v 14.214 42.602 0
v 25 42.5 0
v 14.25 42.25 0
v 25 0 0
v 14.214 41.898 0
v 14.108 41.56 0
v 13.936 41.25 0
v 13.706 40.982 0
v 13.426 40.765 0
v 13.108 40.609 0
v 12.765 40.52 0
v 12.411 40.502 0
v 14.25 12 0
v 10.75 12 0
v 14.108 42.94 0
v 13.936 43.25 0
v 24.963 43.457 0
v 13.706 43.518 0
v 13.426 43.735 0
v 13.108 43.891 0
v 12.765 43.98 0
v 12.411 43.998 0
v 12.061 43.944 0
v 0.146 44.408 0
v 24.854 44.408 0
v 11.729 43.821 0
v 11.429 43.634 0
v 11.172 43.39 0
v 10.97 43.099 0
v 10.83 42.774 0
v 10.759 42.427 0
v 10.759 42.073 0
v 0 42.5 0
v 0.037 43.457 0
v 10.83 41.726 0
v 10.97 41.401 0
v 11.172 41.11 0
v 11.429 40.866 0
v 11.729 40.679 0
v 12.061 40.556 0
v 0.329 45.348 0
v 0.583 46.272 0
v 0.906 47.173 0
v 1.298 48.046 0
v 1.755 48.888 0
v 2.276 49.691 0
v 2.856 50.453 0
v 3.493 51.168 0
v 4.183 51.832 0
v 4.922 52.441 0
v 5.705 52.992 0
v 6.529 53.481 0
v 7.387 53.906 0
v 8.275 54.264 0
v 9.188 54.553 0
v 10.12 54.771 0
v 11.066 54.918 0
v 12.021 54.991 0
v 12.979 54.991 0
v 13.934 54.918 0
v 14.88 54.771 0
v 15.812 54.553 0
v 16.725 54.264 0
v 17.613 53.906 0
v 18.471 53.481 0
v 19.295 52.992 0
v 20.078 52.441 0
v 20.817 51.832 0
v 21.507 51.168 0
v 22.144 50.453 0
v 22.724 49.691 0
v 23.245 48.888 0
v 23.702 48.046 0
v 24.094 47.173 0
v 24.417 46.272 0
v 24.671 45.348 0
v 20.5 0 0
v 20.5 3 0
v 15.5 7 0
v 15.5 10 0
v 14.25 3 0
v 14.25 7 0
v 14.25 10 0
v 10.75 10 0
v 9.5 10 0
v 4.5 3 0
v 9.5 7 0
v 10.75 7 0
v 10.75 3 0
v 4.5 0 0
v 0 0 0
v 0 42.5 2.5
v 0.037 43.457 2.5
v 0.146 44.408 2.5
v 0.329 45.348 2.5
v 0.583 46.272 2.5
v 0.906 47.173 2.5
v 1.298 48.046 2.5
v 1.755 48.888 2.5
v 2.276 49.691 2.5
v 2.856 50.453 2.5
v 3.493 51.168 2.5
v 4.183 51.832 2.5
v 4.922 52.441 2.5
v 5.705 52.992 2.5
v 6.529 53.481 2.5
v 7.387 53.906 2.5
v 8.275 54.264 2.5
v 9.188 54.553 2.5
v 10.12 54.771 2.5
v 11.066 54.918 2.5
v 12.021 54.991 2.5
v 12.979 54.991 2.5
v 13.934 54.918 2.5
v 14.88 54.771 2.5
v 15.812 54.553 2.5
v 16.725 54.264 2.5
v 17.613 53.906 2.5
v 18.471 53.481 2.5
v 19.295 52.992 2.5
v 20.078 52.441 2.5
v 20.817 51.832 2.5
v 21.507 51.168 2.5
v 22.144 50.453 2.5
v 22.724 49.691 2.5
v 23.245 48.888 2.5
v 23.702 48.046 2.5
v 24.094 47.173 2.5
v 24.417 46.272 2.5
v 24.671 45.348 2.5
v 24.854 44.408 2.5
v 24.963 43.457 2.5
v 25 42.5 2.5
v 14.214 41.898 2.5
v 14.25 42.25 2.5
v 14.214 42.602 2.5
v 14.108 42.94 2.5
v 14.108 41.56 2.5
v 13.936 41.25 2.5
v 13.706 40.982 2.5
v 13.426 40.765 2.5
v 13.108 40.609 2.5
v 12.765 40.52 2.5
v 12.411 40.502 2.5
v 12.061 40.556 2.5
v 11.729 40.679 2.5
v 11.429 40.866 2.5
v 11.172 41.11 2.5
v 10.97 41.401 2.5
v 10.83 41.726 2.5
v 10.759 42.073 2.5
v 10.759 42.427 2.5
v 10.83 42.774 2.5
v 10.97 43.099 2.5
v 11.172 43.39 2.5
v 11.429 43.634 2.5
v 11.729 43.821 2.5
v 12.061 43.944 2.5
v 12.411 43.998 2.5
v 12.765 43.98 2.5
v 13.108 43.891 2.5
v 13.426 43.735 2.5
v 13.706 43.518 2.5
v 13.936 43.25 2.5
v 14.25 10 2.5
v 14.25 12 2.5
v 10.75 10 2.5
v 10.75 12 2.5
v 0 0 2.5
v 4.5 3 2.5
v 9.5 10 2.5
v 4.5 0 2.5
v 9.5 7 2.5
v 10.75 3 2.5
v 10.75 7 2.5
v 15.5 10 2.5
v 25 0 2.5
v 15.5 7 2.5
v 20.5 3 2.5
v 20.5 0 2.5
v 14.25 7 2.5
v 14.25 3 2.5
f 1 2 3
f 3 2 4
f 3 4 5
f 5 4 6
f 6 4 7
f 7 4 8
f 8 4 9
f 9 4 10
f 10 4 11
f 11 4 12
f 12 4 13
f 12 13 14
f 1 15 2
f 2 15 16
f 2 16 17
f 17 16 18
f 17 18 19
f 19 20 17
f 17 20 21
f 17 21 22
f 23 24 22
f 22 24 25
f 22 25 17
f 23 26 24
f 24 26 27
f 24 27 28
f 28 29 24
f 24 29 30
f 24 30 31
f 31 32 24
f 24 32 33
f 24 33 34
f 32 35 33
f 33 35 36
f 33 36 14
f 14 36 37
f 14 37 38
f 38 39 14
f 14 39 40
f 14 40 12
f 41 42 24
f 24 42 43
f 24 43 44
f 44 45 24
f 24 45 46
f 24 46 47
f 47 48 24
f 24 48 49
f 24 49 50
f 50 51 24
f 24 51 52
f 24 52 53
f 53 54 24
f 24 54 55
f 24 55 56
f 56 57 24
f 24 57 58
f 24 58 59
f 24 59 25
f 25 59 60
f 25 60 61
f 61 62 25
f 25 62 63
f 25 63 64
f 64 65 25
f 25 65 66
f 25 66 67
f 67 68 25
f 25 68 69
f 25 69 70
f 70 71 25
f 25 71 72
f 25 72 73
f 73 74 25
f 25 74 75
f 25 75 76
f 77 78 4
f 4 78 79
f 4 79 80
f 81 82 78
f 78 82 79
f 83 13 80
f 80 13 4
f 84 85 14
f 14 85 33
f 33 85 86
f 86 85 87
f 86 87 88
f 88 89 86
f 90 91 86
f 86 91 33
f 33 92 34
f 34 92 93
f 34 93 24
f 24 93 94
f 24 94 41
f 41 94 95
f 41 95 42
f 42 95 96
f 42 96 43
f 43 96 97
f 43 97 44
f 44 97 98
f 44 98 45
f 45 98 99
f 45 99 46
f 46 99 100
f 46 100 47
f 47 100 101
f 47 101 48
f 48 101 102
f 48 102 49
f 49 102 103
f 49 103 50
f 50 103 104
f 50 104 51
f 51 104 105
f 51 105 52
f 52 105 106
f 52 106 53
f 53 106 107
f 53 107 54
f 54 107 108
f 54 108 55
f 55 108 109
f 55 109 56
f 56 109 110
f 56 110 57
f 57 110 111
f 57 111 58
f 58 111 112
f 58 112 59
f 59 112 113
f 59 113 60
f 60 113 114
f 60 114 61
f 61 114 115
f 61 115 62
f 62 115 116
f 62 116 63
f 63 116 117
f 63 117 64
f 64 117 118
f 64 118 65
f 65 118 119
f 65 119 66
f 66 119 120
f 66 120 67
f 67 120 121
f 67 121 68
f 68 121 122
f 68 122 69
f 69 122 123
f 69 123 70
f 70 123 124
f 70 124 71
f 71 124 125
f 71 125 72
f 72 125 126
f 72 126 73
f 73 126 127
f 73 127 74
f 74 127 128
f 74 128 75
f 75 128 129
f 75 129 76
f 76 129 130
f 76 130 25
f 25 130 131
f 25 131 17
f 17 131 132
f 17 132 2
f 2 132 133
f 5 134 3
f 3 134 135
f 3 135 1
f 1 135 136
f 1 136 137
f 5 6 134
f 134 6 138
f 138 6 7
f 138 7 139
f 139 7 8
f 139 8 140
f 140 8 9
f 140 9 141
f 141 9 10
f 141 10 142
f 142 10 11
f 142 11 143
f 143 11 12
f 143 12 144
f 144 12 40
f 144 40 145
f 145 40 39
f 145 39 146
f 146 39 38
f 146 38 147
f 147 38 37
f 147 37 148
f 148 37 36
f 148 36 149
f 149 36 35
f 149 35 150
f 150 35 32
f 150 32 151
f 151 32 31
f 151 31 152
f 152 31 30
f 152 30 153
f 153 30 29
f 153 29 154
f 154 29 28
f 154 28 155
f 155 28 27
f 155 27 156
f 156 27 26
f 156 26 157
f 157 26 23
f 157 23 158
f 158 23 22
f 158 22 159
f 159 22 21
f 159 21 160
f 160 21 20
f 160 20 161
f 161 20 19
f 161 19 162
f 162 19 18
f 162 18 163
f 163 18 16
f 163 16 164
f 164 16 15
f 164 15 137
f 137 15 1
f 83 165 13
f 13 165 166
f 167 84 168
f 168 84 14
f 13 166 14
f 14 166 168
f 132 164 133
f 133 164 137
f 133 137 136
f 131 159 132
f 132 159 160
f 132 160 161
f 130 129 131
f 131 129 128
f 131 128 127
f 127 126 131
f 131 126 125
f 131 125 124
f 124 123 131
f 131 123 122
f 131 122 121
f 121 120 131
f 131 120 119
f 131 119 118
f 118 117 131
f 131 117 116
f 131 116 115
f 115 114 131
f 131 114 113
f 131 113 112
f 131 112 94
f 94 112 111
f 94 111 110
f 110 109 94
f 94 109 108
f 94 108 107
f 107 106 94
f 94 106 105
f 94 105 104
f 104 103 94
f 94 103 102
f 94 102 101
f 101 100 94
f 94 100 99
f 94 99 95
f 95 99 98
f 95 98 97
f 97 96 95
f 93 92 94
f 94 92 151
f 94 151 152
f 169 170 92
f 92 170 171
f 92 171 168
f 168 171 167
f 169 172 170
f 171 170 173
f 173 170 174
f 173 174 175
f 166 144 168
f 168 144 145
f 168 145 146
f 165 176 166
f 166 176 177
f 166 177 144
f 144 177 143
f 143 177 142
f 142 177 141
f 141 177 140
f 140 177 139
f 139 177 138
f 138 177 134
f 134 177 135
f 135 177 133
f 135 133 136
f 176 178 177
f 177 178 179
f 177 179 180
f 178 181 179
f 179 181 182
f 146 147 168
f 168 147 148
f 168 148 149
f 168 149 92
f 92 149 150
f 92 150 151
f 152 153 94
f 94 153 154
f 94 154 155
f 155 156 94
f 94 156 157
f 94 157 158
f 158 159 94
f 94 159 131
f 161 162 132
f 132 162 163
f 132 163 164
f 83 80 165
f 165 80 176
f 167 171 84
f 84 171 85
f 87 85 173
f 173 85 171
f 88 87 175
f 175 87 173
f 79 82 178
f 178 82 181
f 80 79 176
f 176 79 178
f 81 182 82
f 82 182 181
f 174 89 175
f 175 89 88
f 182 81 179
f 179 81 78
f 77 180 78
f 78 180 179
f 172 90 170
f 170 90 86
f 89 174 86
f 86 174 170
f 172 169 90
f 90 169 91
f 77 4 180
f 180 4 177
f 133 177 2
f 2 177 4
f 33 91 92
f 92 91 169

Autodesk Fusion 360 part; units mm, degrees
sketch "Sketch1" plane through (0, 0, 0) normal (0, 0, 1) x (1, 0, 0)
  line L0 (0, 0) -> (25, 0)
  line L1 (25, 0) -> (25, 55)
  line L2 (25, 55) -> (0, 55)
  line L3 (0, 55) -> (0, 0)
  dimension "d1" = 25
  dimension "d2" = 55
extrude "Extrude1" add sketch "Sketch1" along normal blind 2.5
sketch "Sketch2" plane through (0, 0, 0) normal (0, -1, 0) x (1, 0, 0)
  line L0 (0, 0) -> (25, 0)
  line L1 (25, 0) -> (25, 2.5)
  line L2 (25, 2.5) -> (0, 2.5)
  line L3 (0, 2.5) -> (0, 0)
  line L4 (0, 2.5) -> (4.5, 2.5)
  line L5 (4.5, 2.5) -> (4.5, 0)
  line L6 (4.5, 0) -> (0, 0)
  line L7 (0, 0) -> (0, 2.5)
  line L8 (25, 2.5) -> (20.5, 2.5)
  line L9 (20.5, 2.5) -> (20.5, 0)
  line L10 (20.5, 0) -> (25, 0)
  line L11 (25, 0) -> (25, 2.5)
  dimension "d5" = 4.5
  dimension "d6" = 4.5
extrude "Extrude2" cut sketch "Sketch2" against normal blind 3 contours L0 L2 L5 L9
sketch "Sketch3" plane through (0, 3, 0) normal (0, -1, 0) x (1, 0, 0)
  line L0 (4.5, 2.5) -> (4.5, 0)
  line L1 (4.5, 0) -> (20.5, 0)
  line L2 (20.5, 0) -> (20.5, 2.5)
  line L3 (20.5, 2.5) -> (4.5, 2.5)
  line L4 (10.75, 2.5) -> (14.25, 2.5)
  line L5 (14.25, 2.5) -> (14.25, 0)
  line L6 (14.25, 0) -> (10.75, 0)
  line L7 (10.75, 0) -> (10.75, 2.5)
  dimension "d9" = 3.5
  dimension "d10" = 6.25
extrude "Extrude3" cut sketch "Sketch3" against normal blind 4 contours L1 L3 L4 L5 L6 L7
sketch "Sketch4" plane through (0, 0, 2.5) normal (0, 0, 1) x (-1, 0, 0)
  line L0 (-10.75, -3) -> (-10.75, -7)
  line L1 (-10.75, -7) -> (-14.25, -7)
  line L2 (-14.25, -7) -> (-14.25, -3)
  line L3 (-14.25, -3) -> (-20.5, -3)
  line L4 (-20.5, -3) -> (-20.5, 0)
  line L5 (-20.5, 0) -> (-25, 0)
  line L6 (-25, 0) -> (-25, -55)
  line L7 (-25, -55) -> (0, -55)
  line L8 (0, -55) -> (0, 0)
  line L9 (0, 0) -> (-4.5, 0)
  line L10 (-4.5, 0) -> (-4.5, -3)
  line L11 (-4.5, -3) -> (-10.75, -3)
  line L12 (-9.5, -7) -> (-15.5, -7)
  line L13 (-15.5, -7) -> (-15.5, -10)
  line L14 (-15.5, -10) -> (-9.5, -10)
  line L15 (-9.5, -10) -> (-9.5, -7)
  dimension "d13" = 6
  dimension "d14" = 3
  dimension "d15" = 1.25
extrude "Extrude4" cut sketch "Sketch4" against normal blind 3 contours L1 L12 L13 L14 L15
sketch "Sketch5" plane through (0, 10, 0) normal (0, -1, 0) x (1, 0, 0)
  line L0 (9.5, 0) -> (15.5, 0)
  line L1 (15.5, 0) -> (15.5, 2.5)
  line L2 (15.5, 2.5) -> (9.5, 2.5)
  line L3 (9.5, 2.5) -> (9.5, 0)
  line L4 (10.75, 2.5) -> (14.25, 2.5)
  line L5 (14.25, 2.5) -> (14.25, 0)
  line L6 (14.25, 0) -> (10.75, 0)
  line L7 (10.75, 0) -> (10.75, 2.5)
  dimension "d18" = 3.5
  dimension "d19" = 2.5
  dimension "d20" = 1.25
extrude "Extrude5" cut sketch "Sketch5" against normal blind 2 contours L0 L2 L4 L5 L6 L7
sketch "Sketch6" plane through (0, 0, 2.5) normal (0, 0, 1) x (-1, 0, 0)
  line L0 (-10.75, -10) -> (-10.75, -12)
  line L1 (-10.75, -12) -> (-14.25, -12)
  line L2 (-14.25, -12) -> (-14.25, -10)
  line L3 (-14.25, -10) -> (-15.5, -10)
  line L4 (-15.5, -10) -> (-15.5, -7)
  line L5 (-15.5, -7) -> (-14.25, -7)
  line L6 (-14.25, -7) -> (-14.25, -3)
  line L7 (-14.25, -3) -> (-20.5, -3)
  line L8 (-20.5, -3) -> (-20.5, 0)
  line L9 (-20.5, 0) -> (-25, 0)
  line L10 (-25, 0) -> (-25, -55)
  line L11 (-25, -55) -> (0, -55)
  line L12 (0, -55) -> (0, 0)
  line L13 (0, 0) -> (-4.5, 0)
  line L14 (-4.5, 0) -> (-4.5, -3)
  line L15 (-4.5, -3) -> (-10.75, -3)
  line L16 (-10.75, -3) -> (-10.75, -7)
  line L17 (-10.75, -7) -> (-9.5, -7)
  line L18 (-9.5, -7) -> (-9.5, -10)
  line L19 (-9.5, -10) -> (-10.75, -10)
  circle A0 centre (-12.5, -42.25) radius 1.75
  dimension "d23" = 3.5
  dimension "d24" = 12.75
extrude "Extrude6" cut sketch "Sketch6" against normal blind 3 contours A0
fillet "Fillet1" radius 12.5 1 edges at (25, 55, 1.25)
fillet "Fillet2" radius 12.5 1 edges at (0, 55, 1.25)
